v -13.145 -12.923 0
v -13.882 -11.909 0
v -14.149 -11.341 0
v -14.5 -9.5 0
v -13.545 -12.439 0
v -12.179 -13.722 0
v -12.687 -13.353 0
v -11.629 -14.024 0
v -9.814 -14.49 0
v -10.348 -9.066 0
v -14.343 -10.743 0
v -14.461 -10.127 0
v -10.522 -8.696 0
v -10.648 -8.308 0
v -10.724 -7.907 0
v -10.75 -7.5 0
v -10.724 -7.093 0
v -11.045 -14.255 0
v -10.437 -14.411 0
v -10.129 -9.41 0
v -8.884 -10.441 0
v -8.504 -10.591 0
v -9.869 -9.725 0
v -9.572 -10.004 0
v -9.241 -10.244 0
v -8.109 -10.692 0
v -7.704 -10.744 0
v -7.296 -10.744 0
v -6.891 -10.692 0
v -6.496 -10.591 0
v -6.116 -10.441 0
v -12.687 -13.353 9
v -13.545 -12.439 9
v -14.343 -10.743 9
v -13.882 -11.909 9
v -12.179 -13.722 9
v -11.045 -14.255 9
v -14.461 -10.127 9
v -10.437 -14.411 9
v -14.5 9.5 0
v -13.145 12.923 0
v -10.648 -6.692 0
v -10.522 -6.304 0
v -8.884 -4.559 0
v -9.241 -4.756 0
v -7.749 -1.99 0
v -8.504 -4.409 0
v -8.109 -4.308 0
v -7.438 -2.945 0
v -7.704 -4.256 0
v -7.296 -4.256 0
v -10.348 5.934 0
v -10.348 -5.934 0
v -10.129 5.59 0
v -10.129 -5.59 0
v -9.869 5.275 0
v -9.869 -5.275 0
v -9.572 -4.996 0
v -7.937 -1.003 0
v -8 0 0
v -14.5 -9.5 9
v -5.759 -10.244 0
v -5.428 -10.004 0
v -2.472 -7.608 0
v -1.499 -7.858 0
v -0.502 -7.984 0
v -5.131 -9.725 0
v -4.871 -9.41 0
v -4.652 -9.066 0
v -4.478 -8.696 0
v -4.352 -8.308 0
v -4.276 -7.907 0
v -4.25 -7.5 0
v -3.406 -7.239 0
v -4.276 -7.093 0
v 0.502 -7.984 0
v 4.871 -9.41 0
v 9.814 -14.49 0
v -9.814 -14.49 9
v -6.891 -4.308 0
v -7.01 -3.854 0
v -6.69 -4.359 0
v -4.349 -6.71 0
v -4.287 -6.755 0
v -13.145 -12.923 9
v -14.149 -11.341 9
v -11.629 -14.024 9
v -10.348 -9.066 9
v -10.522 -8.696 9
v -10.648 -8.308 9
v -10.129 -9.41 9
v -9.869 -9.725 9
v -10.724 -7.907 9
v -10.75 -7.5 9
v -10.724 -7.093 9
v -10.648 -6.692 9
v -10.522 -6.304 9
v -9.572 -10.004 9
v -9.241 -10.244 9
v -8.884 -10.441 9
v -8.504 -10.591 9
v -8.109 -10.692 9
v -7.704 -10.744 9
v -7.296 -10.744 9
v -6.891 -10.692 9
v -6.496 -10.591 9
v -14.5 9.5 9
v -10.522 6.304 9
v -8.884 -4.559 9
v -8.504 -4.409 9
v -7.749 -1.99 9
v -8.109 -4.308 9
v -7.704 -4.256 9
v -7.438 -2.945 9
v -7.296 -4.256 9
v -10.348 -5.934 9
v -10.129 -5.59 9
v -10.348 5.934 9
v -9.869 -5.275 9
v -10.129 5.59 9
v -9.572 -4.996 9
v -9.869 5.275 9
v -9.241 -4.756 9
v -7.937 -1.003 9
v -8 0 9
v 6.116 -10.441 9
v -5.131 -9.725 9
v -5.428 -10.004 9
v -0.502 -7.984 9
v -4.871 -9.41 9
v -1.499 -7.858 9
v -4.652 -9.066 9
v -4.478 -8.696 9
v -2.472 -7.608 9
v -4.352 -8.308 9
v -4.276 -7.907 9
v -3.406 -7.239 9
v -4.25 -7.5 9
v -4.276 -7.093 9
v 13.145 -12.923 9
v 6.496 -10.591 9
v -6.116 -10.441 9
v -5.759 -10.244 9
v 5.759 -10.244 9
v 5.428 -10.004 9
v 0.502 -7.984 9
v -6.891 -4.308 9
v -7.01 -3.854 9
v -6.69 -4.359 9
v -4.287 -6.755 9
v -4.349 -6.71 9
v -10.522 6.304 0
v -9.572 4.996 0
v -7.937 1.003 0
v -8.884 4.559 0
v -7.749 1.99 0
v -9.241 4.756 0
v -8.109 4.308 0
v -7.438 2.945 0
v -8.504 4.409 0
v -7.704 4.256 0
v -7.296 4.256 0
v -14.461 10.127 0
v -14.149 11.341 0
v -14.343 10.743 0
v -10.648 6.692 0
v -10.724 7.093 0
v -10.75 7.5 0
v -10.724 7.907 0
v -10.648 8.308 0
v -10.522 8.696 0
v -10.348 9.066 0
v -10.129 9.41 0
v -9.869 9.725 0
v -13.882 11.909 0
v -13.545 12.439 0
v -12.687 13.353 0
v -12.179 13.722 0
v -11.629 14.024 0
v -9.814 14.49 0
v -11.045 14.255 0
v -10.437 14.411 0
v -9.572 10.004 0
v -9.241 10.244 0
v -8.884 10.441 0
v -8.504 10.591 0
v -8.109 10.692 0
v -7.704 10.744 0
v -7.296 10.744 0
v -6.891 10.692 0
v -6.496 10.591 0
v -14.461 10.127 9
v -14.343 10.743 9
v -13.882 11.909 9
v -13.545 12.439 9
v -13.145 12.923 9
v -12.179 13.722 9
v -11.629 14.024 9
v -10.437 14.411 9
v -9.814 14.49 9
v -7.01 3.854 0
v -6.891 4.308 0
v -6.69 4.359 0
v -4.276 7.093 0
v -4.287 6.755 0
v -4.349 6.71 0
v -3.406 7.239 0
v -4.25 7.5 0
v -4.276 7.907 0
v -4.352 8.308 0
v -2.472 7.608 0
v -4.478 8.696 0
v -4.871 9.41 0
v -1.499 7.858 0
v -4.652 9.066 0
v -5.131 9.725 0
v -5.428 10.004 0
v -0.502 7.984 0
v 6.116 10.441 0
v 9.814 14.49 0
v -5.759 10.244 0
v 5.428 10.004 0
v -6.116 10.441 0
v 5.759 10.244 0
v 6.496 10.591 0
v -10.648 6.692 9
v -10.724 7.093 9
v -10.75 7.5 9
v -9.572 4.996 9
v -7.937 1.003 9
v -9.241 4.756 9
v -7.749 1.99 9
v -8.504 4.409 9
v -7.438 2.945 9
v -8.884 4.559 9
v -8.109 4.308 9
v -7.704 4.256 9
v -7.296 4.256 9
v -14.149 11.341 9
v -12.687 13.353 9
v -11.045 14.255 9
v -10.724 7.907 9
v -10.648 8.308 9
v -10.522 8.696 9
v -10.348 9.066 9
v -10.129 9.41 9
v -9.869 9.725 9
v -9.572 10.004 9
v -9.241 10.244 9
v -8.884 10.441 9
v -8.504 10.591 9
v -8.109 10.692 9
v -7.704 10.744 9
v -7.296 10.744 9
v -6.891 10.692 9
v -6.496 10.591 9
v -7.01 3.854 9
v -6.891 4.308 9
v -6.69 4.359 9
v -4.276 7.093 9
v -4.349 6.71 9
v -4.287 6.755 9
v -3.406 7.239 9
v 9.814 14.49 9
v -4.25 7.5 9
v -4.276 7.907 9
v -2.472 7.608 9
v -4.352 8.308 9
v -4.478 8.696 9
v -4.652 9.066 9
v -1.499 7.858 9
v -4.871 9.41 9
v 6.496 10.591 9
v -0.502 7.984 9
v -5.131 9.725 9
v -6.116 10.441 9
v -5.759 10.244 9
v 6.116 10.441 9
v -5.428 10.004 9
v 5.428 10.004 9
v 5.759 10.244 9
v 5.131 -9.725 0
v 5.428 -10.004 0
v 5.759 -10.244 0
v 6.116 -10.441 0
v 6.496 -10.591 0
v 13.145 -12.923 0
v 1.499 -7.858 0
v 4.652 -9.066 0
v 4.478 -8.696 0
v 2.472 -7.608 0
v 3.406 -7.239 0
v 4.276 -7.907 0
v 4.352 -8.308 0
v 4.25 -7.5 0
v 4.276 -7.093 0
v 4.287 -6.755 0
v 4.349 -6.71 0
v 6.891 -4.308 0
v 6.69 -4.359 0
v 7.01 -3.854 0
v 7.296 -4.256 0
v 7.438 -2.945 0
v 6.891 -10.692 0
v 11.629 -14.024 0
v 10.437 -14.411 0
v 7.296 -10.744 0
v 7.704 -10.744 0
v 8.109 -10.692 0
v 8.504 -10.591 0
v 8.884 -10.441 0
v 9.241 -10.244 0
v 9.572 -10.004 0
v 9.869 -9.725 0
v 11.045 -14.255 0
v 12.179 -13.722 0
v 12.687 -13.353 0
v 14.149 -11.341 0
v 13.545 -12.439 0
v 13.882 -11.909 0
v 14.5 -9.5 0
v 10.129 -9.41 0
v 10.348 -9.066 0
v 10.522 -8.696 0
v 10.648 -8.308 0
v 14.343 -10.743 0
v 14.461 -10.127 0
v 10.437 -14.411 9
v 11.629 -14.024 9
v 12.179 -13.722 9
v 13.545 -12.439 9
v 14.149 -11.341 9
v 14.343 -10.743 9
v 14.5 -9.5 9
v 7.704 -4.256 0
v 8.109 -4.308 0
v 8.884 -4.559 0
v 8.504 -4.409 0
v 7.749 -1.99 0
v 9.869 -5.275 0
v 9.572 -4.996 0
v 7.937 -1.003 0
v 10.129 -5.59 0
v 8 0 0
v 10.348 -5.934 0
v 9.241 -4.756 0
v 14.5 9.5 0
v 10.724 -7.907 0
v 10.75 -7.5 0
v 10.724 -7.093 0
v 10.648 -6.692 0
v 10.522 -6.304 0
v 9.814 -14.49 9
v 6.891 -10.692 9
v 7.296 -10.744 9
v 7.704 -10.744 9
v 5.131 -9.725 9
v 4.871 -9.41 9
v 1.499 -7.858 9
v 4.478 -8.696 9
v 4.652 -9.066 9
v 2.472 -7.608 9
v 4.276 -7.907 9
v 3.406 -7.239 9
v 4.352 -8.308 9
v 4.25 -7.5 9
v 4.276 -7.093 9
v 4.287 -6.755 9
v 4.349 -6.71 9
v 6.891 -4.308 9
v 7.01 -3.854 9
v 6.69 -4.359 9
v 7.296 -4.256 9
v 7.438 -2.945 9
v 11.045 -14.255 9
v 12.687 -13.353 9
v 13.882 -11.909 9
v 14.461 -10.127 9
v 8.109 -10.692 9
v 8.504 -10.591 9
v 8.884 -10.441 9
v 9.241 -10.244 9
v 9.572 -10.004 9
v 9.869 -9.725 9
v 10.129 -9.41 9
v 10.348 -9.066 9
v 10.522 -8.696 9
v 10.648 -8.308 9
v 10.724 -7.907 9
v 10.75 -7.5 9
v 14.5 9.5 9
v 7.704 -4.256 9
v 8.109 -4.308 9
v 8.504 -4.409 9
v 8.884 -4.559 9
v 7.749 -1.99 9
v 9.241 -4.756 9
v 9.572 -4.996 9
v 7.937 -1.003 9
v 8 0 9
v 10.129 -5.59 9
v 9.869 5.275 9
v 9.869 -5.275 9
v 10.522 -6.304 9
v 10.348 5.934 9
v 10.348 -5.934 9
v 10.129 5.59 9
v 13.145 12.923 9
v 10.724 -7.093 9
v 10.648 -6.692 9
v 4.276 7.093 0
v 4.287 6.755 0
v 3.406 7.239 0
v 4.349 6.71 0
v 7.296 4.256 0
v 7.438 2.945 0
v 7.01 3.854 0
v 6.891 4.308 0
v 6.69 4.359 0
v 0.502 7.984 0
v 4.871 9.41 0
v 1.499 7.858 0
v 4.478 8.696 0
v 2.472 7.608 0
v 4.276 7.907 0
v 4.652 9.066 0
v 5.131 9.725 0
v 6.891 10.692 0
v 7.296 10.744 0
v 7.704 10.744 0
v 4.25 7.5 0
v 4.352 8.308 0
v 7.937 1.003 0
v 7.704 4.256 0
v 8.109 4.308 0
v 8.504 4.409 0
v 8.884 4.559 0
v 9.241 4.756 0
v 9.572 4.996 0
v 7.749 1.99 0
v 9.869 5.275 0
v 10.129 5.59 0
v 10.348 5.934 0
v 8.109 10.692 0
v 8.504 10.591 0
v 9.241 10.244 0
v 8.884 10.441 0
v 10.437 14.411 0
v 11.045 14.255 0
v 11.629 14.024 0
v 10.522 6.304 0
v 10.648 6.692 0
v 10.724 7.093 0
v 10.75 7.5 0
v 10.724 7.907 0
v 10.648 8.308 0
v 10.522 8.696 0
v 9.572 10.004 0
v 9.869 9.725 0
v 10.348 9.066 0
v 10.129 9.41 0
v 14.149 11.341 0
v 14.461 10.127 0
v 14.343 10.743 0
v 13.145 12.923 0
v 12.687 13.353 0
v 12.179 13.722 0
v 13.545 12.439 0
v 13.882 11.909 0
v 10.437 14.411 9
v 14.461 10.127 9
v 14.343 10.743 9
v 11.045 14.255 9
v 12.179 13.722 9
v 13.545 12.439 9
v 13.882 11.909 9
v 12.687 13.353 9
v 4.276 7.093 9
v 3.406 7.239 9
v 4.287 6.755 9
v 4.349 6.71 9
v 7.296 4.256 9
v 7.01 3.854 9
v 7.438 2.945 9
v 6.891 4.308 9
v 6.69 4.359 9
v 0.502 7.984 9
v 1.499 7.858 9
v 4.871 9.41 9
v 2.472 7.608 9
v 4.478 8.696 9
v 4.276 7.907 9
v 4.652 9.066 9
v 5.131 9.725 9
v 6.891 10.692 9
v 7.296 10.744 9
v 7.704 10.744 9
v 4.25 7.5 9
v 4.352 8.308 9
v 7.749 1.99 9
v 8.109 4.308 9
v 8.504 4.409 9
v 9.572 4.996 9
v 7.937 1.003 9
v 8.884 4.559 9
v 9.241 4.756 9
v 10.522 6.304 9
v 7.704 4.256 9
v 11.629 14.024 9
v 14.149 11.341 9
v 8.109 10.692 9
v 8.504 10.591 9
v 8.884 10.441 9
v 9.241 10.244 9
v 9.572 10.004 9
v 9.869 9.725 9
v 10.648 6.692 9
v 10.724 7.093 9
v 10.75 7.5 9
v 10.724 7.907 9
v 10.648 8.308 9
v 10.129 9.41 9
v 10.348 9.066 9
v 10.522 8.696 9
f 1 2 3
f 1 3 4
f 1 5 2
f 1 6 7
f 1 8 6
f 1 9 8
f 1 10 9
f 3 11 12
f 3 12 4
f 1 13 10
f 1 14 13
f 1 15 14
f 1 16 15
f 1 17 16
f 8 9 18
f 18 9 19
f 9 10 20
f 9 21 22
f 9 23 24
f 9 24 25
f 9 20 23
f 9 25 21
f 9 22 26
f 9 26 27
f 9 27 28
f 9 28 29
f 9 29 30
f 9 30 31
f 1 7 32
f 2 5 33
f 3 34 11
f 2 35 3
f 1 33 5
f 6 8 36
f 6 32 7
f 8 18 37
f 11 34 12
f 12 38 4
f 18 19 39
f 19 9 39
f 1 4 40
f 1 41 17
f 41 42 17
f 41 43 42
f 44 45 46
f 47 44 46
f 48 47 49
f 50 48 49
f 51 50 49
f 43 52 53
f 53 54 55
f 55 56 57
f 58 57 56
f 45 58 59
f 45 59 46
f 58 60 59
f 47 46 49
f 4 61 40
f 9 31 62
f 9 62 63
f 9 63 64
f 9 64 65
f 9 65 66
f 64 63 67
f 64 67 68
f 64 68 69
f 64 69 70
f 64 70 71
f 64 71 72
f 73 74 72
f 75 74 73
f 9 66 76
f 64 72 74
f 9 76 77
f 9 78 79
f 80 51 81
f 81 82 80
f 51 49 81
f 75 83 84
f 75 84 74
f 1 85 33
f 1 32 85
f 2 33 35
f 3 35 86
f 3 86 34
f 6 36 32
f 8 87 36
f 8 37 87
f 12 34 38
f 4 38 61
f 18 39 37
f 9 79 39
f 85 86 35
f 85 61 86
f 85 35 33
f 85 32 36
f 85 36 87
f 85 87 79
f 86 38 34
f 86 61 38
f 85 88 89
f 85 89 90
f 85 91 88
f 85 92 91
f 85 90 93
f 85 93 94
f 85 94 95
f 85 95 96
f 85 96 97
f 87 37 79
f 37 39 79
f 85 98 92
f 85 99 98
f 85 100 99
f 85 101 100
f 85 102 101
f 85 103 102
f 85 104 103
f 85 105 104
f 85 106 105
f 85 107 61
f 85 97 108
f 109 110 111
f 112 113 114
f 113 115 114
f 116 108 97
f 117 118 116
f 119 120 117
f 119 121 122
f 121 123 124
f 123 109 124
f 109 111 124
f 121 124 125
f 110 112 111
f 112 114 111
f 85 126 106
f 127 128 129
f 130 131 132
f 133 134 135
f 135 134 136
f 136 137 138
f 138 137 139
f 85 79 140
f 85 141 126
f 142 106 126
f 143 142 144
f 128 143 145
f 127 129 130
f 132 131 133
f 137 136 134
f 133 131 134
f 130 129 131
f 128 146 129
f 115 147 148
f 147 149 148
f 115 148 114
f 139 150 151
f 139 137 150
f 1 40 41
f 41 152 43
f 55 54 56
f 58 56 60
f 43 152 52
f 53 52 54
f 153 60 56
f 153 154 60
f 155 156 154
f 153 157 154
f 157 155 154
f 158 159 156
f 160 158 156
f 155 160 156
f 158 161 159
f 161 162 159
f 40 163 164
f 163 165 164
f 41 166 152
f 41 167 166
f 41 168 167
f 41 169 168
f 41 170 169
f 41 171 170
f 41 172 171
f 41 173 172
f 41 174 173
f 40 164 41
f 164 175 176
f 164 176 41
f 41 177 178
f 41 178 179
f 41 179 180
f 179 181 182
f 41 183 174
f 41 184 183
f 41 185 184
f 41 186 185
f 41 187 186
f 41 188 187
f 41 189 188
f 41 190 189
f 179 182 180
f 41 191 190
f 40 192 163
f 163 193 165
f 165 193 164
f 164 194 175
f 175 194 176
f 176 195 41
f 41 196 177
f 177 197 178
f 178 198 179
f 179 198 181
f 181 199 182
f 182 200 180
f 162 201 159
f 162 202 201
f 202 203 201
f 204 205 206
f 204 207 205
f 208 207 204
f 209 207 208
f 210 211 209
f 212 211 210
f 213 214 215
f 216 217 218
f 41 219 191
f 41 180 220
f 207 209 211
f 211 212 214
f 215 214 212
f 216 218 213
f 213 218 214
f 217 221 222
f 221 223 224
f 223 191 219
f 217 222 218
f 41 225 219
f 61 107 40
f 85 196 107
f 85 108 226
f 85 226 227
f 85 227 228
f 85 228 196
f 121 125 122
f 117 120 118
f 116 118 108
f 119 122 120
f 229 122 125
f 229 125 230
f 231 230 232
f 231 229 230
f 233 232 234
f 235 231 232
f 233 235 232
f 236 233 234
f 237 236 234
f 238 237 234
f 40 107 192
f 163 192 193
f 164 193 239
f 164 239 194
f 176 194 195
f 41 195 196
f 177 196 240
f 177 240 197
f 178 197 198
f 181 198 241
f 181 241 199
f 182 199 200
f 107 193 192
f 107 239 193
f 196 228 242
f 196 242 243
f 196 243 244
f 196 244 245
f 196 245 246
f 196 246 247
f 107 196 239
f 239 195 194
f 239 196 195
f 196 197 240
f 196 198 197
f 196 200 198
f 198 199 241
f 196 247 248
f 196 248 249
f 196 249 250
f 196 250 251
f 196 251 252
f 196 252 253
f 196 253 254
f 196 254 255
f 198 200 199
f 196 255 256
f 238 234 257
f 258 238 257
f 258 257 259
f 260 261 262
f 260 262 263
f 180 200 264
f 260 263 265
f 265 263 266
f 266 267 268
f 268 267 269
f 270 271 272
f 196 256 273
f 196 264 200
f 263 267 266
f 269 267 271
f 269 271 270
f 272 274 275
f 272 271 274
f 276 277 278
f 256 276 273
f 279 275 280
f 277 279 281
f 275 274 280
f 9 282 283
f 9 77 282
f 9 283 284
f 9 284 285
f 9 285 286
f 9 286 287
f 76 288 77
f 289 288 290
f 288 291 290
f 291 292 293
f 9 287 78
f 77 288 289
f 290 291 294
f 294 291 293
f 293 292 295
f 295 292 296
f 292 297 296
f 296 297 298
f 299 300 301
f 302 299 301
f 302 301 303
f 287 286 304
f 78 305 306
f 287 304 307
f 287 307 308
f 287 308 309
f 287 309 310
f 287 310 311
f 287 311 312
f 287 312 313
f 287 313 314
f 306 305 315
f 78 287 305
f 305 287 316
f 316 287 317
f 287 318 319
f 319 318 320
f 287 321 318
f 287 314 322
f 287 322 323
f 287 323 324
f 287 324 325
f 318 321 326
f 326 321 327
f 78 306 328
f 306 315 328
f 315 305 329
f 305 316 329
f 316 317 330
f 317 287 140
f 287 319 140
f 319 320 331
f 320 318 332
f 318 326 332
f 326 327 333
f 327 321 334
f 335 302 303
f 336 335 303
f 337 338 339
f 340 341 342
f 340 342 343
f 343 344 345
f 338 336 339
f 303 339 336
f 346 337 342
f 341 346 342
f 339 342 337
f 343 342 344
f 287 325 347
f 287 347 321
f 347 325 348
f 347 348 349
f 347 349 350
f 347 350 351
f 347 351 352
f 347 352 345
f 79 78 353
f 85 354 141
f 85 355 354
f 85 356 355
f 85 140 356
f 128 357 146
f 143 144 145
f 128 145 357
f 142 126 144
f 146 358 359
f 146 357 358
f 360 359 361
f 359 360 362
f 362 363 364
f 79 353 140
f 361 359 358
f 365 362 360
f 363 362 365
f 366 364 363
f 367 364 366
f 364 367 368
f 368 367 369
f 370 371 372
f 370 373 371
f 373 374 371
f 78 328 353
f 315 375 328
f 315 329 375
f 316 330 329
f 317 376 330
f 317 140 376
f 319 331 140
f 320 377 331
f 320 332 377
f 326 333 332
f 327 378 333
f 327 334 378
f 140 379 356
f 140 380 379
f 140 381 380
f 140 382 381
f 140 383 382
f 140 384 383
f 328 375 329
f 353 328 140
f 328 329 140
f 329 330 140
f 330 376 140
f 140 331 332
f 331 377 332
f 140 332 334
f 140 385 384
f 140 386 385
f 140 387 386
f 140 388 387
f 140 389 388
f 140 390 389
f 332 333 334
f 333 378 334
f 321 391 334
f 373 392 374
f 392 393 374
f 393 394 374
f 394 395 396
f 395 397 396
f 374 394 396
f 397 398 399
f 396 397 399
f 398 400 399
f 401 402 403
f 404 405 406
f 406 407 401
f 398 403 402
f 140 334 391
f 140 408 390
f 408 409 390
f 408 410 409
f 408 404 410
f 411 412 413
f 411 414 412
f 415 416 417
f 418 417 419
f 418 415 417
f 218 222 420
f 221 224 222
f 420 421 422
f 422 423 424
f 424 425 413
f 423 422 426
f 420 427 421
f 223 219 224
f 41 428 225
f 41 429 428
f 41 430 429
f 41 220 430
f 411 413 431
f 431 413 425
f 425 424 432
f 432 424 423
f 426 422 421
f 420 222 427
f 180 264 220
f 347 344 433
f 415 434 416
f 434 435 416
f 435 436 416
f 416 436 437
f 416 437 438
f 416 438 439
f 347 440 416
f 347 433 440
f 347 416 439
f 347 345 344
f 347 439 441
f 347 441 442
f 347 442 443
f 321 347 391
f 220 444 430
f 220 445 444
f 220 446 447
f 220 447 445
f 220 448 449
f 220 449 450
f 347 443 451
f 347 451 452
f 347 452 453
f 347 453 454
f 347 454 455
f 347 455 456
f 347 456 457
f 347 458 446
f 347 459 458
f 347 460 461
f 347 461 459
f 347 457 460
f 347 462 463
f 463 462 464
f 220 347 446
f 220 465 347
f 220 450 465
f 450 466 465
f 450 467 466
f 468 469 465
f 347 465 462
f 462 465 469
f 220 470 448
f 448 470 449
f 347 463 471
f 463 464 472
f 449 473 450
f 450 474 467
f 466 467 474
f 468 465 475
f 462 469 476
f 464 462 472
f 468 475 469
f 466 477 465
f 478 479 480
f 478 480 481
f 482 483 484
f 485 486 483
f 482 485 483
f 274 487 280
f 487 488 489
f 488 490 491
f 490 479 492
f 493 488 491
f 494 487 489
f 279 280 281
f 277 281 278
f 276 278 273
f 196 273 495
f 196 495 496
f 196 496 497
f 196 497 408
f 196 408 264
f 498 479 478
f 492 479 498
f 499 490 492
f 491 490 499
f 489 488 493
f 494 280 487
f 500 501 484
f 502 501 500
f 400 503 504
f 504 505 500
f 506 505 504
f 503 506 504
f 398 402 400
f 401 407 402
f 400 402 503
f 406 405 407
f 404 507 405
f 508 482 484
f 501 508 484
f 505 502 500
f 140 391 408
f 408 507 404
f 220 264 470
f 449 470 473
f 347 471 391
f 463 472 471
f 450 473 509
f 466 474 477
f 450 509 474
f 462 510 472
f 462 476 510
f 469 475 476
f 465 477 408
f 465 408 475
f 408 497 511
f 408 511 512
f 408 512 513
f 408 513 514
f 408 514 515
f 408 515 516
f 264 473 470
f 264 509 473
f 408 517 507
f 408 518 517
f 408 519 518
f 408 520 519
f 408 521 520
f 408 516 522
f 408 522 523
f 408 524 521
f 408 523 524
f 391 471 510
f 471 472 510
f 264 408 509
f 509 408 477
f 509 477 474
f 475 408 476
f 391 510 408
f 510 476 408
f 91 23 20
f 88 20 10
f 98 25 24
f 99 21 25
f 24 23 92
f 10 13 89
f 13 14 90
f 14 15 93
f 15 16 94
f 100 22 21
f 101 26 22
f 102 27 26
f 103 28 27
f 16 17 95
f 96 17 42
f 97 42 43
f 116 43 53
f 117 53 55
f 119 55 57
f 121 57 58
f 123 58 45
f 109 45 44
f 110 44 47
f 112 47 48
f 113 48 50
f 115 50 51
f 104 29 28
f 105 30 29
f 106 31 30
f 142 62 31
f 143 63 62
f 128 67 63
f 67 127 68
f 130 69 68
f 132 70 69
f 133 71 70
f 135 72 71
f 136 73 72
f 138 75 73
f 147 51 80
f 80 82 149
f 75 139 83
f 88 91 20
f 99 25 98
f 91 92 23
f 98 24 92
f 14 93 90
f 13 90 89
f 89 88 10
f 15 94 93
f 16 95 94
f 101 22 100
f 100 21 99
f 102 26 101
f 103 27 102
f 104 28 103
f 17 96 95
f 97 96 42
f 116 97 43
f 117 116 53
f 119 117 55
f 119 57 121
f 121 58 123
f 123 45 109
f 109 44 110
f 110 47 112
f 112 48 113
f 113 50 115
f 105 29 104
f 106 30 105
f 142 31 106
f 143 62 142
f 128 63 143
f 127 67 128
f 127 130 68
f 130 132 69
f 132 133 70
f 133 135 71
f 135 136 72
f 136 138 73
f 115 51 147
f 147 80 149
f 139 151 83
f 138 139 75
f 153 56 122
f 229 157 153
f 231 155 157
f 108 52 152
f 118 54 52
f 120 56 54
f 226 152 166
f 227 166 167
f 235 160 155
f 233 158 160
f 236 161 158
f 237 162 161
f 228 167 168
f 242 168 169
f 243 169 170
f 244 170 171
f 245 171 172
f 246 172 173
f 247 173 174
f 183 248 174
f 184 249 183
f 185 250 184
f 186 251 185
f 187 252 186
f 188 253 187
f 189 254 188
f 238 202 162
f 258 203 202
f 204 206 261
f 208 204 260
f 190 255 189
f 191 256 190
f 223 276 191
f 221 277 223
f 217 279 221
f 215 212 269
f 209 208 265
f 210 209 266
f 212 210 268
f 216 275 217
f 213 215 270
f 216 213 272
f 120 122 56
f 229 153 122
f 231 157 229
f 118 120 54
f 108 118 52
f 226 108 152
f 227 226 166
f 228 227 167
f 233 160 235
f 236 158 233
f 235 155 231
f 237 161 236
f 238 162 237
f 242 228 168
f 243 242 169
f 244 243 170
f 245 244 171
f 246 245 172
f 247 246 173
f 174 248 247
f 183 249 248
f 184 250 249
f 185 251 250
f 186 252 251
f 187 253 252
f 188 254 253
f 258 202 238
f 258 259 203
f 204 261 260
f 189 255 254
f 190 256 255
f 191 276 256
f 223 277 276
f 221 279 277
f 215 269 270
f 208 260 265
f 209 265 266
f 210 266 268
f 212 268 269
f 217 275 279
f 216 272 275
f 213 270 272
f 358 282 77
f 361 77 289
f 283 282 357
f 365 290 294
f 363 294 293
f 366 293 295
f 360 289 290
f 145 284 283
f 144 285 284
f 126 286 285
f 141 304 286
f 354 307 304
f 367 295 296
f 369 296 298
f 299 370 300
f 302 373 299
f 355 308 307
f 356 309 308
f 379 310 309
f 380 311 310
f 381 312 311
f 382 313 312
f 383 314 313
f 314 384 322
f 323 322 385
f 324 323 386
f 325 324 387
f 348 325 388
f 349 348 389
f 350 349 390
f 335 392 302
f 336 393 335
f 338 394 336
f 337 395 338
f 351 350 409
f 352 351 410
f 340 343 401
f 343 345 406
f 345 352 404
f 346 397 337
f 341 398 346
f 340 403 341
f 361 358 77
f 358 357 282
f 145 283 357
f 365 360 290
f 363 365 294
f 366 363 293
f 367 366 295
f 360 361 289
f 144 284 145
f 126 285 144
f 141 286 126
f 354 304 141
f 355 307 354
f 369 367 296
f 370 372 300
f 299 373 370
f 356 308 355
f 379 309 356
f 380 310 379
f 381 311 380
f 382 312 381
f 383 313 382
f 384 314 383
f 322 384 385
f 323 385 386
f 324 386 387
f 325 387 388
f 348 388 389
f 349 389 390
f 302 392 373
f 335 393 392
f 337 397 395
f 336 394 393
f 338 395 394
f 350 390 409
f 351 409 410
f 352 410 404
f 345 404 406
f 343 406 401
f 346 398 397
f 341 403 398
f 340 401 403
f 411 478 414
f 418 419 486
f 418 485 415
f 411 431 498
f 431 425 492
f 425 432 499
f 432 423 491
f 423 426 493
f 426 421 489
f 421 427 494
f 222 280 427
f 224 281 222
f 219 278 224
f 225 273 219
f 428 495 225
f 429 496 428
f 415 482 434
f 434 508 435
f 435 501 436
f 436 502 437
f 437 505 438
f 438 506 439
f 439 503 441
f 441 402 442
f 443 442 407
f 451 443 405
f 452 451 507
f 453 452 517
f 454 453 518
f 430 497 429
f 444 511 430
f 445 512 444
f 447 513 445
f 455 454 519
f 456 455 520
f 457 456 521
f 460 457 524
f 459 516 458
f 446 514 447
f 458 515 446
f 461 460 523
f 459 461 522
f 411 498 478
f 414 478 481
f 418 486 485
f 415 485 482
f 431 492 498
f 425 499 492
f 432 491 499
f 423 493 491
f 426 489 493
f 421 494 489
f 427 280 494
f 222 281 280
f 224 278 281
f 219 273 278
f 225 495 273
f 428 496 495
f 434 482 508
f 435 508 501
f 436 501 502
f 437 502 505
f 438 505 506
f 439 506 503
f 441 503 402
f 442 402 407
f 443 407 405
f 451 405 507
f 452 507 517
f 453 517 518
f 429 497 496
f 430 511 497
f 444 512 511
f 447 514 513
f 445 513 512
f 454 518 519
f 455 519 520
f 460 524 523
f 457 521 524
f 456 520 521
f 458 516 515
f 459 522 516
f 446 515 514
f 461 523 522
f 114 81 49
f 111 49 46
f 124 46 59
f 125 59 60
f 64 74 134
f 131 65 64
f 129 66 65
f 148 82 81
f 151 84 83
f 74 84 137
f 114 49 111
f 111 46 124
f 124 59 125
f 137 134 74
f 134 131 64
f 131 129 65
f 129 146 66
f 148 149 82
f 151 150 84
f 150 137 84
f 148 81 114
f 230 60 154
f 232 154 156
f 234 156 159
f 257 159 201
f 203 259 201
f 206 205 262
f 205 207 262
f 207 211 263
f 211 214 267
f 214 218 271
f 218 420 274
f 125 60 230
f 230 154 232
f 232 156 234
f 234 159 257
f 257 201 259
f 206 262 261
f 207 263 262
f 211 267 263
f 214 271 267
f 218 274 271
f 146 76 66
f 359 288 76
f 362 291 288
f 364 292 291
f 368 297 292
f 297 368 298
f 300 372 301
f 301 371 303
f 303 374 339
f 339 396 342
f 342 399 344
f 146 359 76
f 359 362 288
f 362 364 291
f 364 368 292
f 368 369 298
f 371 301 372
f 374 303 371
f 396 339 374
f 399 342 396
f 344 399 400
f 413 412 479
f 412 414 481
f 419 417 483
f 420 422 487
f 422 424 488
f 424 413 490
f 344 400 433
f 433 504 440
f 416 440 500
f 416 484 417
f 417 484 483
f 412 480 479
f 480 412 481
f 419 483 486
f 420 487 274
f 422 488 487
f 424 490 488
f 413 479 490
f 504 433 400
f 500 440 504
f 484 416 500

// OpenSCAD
$fn = 50;

difference() {
	union() {
		hull() {
			translate(v = [-9.5, 9.5, 0]) {
				cylinder(h = 9, r = 5);
			}
			translate(v = [9.5, 9.5, 0]) {
				cylinder(h = 9, r = 5);
			}
			translate(v = [-9.5, -9.5, 0]) {
				cylinder(h = 9, r = 5);
			}
			translate(v = [9.5, -9.5, 0]) {
				cylinder(h = 9, r = 5);
			}
		}
	}
	union() {
		translate(v = [-7.5, -7.5, -100.0]) {
			cylinder(h = 200, r = 3.25);
		}
		translate(v = [-7.5, 7.5, -100.0]) {
			cylinder(h = 200, r = 3.25);
		}
		translate(v = [7.5, -7.5, -100.0]) {
			cylinder(h = 200, r = 3.25);
		}
		translate(v = [7.5, 7.5, -100.0]) {
			cylinder(h = 200, r = 3.25);
		}
		translate(v = [-7.5, -7.5, -100.0]) {
			cylinder(h = 200, r = 1.8);
		}
		translate(v = [-7.5, 7.5, -100.0]) {
			cylinder(h = 200, r = 1.8);
		}
		translate(v = [7.5, -7.5, -100.0]) {
			cylinder(h = 200, r = 1.8);
		}
		translate(v = [7.5, 7.5, -100.0]) {
			cylinder(h = 200, r = 1.8);
		}
		cylinder(h = 9, r = 8.0);
	}
}
